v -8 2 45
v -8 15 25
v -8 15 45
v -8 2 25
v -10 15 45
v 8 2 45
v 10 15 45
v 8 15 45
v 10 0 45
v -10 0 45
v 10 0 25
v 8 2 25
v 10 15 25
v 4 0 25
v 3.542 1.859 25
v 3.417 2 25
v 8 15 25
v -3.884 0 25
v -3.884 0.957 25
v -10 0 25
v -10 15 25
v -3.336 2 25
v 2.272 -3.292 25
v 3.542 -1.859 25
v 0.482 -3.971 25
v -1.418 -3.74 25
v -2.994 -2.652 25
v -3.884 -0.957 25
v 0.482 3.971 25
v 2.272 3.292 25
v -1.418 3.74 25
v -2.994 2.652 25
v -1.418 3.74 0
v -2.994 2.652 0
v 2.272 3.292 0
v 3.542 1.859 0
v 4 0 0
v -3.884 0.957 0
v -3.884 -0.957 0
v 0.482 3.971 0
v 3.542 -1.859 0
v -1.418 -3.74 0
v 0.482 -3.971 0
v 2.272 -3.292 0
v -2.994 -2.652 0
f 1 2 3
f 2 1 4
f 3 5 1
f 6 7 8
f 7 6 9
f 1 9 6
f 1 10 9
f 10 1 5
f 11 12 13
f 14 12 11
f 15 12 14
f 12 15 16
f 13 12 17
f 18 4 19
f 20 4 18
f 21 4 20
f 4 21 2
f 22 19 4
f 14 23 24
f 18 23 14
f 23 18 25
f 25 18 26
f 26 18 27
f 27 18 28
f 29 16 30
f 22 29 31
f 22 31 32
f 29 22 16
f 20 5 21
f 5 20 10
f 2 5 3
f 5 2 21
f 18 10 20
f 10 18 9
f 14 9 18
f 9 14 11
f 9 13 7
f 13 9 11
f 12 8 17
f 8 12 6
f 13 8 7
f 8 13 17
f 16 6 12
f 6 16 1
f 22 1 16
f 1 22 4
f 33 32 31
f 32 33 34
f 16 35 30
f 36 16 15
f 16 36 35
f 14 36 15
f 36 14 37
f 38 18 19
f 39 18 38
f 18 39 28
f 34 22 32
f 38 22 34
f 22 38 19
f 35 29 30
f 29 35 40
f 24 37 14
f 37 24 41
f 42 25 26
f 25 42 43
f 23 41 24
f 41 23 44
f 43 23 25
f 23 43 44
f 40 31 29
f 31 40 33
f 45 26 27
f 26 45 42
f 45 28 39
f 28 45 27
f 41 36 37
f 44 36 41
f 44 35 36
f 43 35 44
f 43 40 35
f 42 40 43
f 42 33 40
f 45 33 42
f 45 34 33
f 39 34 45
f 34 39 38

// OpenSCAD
// Parameters
u_shaped_connector_width = 20; // Width of the U-shaped connector
u_shaped_connector_height = 15; // Height of the U arms (elongated for refinement)
u_shaped_connector_thickness = 2; // Thinner arms for original model design
u_hole_diameter = 4; // Adjusted diameter for smaller holes
u_hole_offset = 5; // Offset repositioned for central alignment
cylindrical_base_diameter = 8; // Reduced diameter for proportional cylindrical base
cylindrical_base_height = 25; // Increased height for taller cylindrical base

// U-shaped connector
module u_shaped_connector() {
    difference() {
        // Main U-shape
        union() {
            // Left arm
            translate([-u_shaped_connector_width/2, 0, 0])
                cube([u_shaped_connector_thickness, u_shaped_connector_height, u_shaped_connector_width]);

            // Right arm
            translate([u_shaped_connector_width/2 - u_shaped_connector_thickness, 0, 0])
                cube([u_shaped_connector_thickness, u_shaped_connector_height, u_shaped_connector_width]);

            // Base of the U
            translate([-u_shaped_connector_width/2, 0, 0])
                cube([u_shaped_connector_width, u_shaped_connector_thickness, u_shaped_connector_width]);
        }

        // Holes in the arms
        translate([-u_shaped_connector_width/2 + u_hole_offset, u_shaped_connector_height/2, u_shaped_connector_width/2])
            rotate([90, 0, 0])
                cylinder(r=u_hole_diameter/2, h=u_shaped_connector_thickness*3, center=true);

        translate([u_shaped_connector_width/2 - u_hole_offset, u_shaped_connector_height/2, u_shaped_connector_width/2])
            rotate([90, 0, 0])
                cylinder(r=u_hole_diameter/2, h=u_shaped_connector_thickness*3, center=true);
    }
}

// Cylindrical base
module cylindrical_base() {
    cylinder(r=cylindrical_base_diameter/2, h=cylindrical_base_height);
}

// Assembly
module flexible_coupling() {
    // Cylindrical base
    cylindrical_base();

    // U-shaped connector
    translate([0, 0, cylindrical_base_height])
        rotate([0, 0, 0]) // Straight alignment maintained
            u_shaped_connector();
}

// Render the full assembly
flexible_coupling();
